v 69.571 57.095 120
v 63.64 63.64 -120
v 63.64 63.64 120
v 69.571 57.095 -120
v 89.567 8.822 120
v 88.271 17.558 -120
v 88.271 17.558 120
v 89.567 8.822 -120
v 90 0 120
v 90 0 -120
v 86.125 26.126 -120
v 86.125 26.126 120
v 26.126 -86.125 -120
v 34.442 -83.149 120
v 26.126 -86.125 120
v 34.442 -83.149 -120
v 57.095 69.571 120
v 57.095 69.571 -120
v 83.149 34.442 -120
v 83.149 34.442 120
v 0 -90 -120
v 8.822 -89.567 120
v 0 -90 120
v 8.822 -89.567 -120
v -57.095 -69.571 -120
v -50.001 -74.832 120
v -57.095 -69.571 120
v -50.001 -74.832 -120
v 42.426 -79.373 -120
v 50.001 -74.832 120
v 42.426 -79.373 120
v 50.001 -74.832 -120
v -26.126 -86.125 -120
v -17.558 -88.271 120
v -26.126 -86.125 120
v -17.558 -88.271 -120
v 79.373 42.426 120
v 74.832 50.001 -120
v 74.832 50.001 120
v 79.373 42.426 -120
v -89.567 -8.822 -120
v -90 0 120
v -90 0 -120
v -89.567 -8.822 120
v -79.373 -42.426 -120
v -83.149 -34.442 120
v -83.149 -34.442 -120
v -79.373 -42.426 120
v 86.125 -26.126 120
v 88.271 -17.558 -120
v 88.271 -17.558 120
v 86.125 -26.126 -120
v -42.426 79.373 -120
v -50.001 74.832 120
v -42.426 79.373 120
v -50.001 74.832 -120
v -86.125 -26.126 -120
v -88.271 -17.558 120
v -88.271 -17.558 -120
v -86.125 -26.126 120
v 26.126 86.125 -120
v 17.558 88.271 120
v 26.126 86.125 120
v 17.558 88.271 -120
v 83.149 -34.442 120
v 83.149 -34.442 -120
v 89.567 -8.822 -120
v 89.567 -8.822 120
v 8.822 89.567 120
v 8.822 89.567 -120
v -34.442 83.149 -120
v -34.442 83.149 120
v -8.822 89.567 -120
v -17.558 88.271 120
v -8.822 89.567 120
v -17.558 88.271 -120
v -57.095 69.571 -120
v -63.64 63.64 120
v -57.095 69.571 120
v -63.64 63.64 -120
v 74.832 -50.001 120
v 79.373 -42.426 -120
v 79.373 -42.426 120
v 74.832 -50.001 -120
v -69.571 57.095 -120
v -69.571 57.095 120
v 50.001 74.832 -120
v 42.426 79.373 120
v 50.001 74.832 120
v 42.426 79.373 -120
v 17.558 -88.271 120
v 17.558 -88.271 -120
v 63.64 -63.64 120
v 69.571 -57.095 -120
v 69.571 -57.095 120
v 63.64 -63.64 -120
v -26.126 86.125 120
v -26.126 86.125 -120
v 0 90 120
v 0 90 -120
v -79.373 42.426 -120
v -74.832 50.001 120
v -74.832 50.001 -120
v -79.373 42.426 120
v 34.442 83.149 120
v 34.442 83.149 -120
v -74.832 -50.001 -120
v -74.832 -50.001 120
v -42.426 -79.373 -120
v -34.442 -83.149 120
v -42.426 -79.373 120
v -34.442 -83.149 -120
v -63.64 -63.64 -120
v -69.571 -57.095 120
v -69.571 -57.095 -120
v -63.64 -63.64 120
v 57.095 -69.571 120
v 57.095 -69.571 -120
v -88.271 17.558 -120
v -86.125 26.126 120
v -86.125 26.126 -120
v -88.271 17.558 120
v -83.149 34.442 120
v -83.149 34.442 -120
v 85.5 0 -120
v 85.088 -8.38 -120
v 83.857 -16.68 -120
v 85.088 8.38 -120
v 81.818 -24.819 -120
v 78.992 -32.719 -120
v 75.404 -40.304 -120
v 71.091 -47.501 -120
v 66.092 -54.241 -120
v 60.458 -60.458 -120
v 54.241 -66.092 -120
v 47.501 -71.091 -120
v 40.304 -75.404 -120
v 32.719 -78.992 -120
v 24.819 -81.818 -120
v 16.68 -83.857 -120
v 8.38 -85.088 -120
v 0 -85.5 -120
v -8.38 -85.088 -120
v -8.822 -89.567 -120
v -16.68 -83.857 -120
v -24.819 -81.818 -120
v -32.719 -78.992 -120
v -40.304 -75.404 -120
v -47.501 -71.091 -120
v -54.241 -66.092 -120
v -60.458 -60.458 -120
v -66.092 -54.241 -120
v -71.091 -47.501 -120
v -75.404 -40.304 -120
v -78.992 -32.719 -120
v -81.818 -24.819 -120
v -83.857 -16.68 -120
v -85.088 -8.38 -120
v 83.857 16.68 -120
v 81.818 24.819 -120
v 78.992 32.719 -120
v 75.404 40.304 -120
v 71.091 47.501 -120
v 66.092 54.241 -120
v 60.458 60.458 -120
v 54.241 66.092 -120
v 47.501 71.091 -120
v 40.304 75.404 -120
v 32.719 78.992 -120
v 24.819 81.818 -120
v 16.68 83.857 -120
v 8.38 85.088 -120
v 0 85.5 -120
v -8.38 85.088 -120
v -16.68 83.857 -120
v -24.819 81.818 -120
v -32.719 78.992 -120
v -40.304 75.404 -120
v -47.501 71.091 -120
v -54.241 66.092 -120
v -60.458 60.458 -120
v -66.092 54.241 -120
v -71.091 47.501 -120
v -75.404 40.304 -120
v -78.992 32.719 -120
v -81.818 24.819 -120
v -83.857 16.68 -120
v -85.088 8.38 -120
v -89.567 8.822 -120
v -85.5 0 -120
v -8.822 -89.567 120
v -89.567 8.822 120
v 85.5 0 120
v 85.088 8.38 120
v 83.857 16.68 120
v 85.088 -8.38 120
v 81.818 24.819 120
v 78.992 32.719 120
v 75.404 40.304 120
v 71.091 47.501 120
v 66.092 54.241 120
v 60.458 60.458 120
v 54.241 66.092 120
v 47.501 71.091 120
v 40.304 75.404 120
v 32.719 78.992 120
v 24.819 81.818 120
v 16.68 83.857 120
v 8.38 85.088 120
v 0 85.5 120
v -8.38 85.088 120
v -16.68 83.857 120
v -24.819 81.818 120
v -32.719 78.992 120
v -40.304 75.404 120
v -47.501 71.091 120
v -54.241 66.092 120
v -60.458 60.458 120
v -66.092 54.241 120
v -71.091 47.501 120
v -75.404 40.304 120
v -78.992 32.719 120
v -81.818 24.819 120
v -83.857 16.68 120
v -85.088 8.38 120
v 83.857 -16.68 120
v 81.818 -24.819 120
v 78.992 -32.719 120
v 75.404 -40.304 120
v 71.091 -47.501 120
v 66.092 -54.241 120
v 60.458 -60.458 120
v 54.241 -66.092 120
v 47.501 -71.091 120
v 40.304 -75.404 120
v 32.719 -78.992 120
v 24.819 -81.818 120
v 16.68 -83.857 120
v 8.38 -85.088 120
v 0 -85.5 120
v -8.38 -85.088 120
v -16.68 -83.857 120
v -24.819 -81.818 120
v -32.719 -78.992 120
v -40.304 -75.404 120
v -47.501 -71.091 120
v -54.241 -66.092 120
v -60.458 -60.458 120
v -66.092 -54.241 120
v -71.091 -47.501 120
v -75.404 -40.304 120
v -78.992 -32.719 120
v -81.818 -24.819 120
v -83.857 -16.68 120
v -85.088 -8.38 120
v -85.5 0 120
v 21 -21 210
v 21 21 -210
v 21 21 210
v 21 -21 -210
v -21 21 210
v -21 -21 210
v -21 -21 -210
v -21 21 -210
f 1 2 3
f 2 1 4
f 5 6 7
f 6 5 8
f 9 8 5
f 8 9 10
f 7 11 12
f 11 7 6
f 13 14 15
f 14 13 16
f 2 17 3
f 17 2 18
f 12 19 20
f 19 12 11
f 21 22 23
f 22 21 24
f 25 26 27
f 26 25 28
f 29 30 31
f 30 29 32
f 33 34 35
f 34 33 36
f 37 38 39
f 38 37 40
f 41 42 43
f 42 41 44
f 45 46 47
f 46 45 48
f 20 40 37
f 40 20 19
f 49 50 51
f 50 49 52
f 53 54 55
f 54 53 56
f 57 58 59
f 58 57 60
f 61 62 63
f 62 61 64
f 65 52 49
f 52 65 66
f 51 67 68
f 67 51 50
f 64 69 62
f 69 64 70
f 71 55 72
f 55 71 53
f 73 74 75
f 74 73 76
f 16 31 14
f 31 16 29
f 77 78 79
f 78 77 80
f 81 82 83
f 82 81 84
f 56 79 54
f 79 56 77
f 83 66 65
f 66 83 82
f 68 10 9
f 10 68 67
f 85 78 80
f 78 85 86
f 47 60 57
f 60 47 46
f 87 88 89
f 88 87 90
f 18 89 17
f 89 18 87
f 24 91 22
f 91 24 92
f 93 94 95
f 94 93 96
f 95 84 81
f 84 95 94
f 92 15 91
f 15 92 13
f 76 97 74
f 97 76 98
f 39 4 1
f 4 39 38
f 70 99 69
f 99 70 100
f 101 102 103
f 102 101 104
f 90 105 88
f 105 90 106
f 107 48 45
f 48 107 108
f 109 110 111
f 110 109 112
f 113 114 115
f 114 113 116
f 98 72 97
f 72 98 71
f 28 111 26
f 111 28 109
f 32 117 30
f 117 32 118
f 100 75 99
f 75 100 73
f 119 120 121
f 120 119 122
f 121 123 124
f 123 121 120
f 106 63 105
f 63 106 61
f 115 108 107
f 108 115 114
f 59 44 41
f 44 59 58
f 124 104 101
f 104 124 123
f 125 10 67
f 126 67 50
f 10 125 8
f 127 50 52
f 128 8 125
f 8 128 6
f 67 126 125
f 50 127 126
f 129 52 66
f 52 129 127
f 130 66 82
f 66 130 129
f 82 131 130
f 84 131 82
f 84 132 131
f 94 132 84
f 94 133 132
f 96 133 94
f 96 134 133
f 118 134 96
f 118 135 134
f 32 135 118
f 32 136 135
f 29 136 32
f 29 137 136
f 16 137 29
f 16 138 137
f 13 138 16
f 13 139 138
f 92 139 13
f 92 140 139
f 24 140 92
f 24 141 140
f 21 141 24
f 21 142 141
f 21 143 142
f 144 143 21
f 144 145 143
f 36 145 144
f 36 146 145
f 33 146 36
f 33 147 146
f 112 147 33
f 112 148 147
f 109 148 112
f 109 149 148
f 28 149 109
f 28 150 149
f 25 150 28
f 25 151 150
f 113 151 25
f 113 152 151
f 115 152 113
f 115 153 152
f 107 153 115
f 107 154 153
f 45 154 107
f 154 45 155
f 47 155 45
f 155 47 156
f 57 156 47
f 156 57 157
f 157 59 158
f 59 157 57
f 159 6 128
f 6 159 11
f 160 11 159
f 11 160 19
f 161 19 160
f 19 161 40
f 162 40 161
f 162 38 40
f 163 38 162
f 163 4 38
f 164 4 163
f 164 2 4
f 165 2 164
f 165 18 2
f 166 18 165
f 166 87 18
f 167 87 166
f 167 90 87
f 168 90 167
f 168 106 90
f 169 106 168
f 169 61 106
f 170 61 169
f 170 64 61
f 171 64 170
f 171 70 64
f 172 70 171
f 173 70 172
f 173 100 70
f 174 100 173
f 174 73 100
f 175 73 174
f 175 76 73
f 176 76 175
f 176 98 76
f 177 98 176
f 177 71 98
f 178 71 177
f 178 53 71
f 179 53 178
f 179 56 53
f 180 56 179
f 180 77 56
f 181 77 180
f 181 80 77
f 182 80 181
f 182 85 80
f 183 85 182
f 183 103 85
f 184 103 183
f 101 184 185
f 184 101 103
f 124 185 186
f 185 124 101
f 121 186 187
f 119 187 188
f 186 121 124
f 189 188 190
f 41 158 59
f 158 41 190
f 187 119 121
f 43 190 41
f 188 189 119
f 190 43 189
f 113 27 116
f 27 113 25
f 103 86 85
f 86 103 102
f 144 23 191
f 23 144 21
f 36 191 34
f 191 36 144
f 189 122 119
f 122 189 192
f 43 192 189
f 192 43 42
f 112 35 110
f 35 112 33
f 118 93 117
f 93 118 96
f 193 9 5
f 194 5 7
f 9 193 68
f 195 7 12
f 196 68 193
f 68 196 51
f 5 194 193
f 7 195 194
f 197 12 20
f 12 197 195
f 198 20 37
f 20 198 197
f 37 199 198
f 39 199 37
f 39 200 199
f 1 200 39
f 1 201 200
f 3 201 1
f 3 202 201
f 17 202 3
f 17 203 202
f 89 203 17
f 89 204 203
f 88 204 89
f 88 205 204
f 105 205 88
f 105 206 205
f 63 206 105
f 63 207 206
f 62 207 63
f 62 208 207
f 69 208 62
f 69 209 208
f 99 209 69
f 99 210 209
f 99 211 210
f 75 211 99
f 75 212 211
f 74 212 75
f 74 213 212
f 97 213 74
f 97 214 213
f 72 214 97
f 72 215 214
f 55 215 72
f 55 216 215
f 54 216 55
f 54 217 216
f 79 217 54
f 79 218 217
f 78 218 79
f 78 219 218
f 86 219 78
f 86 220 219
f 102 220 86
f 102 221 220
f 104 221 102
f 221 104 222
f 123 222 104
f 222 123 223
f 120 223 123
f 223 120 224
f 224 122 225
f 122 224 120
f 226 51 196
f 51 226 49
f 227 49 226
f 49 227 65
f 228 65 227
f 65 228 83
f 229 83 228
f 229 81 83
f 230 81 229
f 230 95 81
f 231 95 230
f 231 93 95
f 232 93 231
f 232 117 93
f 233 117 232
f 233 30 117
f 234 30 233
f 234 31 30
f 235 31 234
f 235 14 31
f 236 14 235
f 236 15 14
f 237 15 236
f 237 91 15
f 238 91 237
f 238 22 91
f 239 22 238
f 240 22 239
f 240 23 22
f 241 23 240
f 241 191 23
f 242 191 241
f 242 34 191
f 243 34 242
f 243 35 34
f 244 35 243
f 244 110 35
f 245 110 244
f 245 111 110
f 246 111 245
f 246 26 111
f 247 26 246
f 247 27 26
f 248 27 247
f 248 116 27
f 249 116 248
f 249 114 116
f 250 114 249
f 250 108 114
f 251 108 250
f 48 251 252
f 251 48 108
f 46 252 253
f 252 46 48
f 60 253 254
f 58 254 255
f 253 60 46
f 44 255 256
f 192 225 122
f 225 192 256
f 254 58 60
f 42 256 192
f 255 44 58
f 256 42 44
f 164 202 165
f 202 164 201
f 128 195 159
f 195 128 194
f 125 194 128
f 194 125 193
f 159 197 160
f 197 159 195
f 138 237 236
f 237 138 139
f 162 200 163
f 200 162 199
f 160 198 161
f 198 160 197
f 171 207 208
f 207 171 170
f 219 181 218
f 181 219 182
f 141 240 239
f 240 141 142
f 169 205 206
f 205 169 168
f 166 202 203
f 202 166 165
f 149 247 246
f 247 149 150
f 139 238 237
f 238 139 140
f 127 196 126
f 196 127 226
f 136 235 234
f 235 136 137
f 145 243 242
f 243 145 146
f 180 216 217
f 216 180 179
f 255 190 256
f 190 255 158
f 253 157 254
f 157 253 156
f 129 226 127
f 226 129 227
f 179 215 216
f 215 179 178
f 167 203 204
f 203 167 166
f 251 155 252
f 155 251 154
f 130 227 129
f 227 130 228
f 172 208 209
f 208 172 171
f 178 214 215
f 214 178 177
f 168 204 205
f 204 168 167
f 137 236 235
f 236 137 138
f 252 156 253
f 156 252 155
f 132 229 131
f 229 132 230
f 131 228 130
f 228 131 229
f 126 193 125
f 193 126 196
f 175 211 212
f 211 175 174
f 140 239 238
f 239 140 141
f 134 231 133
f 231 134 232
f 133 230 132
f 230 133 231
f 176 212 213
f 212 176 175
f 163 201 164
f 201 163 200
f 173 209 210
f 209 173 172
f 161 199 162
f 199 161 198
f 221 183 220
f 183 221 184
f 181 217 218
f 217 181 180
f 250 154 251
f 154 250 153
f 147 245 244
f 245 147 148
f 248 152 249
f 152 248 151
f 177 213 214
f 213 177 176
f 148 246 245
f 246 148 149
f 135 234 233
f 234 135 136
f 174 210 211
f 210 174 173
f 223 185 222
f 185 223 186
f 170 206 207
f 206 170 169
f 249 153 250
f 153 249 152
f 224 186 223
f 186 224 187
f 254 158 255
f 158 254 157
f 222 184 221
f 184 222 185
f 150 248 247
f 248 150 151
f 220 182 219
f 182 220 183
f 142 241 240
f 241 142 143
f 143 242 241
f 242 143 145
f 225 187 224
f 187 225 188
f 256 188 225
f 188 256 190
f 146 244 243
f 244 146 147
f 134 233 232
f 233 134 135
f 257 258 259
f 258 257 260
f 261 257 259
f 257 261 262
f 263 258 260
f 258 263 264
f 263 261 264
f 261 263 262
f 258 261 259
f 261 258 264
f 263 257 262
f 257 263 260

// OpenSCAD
// Focused: Assembly Bay + Main Truss only
$fn = 64;

assembly_dia = 180;
assembly_length = 240;
truss_size = 42;
truss_length = 420;

module assembly_bay() {
 difference() {
 cylinder(h = assembly_length, d = assembly_dia, center = true);
 cylinder(h = assembly_length + 2, d = assembly_dia - 9, center = true);
 }
}

color("SteelBlue")
assembly_bay();

color("Gainsboro")
cube([truss_size, truss_size, truss_length], center = true);
